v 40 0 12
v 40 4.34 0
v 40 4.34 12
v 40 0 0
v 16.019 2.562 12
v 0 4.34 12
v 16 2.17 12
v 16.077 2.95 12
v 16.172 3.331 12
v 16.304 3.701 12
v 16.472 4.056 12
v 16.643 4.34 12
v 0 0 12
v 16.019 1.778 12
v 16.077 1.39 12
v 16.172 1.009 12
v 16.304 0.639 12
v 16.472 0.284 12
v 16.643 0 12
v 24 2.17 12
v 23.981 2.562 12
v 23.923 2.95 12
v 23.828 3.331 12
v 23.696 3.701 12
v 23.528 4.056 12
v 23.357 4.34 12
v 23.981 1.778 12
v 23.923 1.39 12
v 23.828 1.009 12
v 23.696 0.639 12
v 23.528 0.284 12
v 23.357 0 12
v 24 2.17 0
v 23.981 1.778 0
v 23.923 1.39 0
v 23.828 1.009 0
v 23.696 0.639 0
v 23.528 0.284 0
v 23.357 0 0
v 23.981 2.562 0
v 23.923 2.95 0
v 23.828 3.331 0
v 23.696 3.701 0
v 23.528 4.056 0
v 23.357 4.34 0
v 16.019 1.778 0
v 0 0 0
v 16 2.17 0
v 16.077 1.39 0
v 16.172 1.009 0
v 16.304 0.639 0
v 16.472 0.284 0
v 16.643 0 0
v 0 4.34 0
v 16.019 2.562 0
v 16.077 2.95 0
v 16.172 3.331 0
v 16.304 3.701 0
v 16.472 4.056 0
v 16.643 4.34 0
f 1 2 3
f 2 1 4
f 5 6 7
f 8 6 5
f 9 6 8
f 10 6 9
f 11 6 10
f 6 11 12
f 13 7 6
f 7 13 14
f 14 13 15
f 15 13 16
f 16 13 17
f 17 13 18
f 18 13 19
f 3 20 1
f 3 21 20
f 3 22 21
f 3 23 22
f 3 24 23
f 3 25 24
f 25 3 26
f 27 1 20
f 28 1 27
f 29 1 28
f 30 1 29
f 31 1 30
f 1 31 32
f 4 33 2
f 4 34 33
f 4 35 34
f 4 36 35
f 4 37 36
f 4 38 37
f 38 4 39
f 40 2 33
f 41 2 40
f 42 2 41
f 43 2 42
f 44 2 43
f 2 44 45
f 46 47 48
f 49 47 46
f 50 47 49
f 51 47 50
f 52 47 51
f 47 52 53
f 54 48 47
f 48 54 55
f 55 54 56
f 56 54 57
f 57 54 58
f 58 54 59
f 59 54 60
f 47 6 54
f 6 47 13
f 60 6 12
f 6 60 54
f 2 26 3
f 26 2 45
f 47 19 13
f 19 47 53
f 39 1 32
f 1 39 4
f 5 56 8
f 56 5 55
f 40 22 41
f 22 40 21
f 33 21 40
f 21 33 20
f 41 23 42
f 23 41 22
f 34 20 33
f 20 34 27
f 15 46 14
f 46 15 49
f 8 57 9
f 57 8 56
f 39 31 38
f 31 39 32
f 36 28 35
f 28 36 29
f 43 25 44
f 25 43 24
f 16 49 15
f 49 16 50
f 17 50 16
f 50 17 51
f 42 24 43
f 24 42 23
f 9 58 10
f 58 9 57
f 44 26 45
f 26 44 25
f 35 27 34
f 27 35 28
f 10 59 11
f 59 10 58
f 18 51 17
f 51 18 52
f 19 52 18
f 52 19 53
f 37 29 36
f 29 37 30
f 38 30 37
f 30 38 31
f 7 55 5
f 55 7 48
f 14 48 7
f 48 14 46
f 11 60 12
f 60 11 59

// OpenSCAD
/* doodle-meta {"version":1,"parameters":{"width":{"label":"Overall width","description":"Changes the body width","unit":"mm","feature":"body_width"},"depth":{"label":"Overall depth","description":"Changes the body depth","unit":"mm","feature":"body_depth"},"height":{"label":"Overall height","description":"Changes the body height","unit":"mm","feature":"body_height"},"hole_diameter":{"label":"Hole diameter","description":"Changes the diameter of the central through hole","unit":"mm","feature":"central_hole"}},"features":{"body_width":{"kind":"dimension","axis":"x","label":"Overall width"},"body_depth":{"kind":"dimension","axis":"y","label":"Overall depth"},"body_height":{"kind":"dimension","axis":"z","label":"Overall height"},"central_hole":{"kind":"region","label":"Central through hole","min":[{"parameter":"width","scale":0.5,"offset":0},{"parameter":"depth","scale":0.5,"offset":0},0],"max":[{"parameter":"width","scale":0.5,"offset":0},{"parameter":"depth","scale":0.5,"offset":0},{"parameter":"height","scale":1,"offset":0}]}}} */

// Overall dimensions (mm)
width = 40.0;
depth = 4.34;
height = 12.0;
hole_diameter = 8.0;

// Implementation constants (not user-editable)
$fn = 64;
eps = 0.01;

// Block body: rectangular prism sitting on the build plate (Z=0)
module block_body() {
    cube([width, depth, height], center=false);
}

// Central through hole: axis along Z, centered in XY, traverses full height
module central_hole_cutter() {
    translate([width/2, depth/2, height/2])
        cylinder(d=hole_diameter, h=height + 2*eps, center=true);
}

// Final CSG tree: positive body minus subtractive cutters
difference() {
    block_body();
    central_hole_cutter();
}
